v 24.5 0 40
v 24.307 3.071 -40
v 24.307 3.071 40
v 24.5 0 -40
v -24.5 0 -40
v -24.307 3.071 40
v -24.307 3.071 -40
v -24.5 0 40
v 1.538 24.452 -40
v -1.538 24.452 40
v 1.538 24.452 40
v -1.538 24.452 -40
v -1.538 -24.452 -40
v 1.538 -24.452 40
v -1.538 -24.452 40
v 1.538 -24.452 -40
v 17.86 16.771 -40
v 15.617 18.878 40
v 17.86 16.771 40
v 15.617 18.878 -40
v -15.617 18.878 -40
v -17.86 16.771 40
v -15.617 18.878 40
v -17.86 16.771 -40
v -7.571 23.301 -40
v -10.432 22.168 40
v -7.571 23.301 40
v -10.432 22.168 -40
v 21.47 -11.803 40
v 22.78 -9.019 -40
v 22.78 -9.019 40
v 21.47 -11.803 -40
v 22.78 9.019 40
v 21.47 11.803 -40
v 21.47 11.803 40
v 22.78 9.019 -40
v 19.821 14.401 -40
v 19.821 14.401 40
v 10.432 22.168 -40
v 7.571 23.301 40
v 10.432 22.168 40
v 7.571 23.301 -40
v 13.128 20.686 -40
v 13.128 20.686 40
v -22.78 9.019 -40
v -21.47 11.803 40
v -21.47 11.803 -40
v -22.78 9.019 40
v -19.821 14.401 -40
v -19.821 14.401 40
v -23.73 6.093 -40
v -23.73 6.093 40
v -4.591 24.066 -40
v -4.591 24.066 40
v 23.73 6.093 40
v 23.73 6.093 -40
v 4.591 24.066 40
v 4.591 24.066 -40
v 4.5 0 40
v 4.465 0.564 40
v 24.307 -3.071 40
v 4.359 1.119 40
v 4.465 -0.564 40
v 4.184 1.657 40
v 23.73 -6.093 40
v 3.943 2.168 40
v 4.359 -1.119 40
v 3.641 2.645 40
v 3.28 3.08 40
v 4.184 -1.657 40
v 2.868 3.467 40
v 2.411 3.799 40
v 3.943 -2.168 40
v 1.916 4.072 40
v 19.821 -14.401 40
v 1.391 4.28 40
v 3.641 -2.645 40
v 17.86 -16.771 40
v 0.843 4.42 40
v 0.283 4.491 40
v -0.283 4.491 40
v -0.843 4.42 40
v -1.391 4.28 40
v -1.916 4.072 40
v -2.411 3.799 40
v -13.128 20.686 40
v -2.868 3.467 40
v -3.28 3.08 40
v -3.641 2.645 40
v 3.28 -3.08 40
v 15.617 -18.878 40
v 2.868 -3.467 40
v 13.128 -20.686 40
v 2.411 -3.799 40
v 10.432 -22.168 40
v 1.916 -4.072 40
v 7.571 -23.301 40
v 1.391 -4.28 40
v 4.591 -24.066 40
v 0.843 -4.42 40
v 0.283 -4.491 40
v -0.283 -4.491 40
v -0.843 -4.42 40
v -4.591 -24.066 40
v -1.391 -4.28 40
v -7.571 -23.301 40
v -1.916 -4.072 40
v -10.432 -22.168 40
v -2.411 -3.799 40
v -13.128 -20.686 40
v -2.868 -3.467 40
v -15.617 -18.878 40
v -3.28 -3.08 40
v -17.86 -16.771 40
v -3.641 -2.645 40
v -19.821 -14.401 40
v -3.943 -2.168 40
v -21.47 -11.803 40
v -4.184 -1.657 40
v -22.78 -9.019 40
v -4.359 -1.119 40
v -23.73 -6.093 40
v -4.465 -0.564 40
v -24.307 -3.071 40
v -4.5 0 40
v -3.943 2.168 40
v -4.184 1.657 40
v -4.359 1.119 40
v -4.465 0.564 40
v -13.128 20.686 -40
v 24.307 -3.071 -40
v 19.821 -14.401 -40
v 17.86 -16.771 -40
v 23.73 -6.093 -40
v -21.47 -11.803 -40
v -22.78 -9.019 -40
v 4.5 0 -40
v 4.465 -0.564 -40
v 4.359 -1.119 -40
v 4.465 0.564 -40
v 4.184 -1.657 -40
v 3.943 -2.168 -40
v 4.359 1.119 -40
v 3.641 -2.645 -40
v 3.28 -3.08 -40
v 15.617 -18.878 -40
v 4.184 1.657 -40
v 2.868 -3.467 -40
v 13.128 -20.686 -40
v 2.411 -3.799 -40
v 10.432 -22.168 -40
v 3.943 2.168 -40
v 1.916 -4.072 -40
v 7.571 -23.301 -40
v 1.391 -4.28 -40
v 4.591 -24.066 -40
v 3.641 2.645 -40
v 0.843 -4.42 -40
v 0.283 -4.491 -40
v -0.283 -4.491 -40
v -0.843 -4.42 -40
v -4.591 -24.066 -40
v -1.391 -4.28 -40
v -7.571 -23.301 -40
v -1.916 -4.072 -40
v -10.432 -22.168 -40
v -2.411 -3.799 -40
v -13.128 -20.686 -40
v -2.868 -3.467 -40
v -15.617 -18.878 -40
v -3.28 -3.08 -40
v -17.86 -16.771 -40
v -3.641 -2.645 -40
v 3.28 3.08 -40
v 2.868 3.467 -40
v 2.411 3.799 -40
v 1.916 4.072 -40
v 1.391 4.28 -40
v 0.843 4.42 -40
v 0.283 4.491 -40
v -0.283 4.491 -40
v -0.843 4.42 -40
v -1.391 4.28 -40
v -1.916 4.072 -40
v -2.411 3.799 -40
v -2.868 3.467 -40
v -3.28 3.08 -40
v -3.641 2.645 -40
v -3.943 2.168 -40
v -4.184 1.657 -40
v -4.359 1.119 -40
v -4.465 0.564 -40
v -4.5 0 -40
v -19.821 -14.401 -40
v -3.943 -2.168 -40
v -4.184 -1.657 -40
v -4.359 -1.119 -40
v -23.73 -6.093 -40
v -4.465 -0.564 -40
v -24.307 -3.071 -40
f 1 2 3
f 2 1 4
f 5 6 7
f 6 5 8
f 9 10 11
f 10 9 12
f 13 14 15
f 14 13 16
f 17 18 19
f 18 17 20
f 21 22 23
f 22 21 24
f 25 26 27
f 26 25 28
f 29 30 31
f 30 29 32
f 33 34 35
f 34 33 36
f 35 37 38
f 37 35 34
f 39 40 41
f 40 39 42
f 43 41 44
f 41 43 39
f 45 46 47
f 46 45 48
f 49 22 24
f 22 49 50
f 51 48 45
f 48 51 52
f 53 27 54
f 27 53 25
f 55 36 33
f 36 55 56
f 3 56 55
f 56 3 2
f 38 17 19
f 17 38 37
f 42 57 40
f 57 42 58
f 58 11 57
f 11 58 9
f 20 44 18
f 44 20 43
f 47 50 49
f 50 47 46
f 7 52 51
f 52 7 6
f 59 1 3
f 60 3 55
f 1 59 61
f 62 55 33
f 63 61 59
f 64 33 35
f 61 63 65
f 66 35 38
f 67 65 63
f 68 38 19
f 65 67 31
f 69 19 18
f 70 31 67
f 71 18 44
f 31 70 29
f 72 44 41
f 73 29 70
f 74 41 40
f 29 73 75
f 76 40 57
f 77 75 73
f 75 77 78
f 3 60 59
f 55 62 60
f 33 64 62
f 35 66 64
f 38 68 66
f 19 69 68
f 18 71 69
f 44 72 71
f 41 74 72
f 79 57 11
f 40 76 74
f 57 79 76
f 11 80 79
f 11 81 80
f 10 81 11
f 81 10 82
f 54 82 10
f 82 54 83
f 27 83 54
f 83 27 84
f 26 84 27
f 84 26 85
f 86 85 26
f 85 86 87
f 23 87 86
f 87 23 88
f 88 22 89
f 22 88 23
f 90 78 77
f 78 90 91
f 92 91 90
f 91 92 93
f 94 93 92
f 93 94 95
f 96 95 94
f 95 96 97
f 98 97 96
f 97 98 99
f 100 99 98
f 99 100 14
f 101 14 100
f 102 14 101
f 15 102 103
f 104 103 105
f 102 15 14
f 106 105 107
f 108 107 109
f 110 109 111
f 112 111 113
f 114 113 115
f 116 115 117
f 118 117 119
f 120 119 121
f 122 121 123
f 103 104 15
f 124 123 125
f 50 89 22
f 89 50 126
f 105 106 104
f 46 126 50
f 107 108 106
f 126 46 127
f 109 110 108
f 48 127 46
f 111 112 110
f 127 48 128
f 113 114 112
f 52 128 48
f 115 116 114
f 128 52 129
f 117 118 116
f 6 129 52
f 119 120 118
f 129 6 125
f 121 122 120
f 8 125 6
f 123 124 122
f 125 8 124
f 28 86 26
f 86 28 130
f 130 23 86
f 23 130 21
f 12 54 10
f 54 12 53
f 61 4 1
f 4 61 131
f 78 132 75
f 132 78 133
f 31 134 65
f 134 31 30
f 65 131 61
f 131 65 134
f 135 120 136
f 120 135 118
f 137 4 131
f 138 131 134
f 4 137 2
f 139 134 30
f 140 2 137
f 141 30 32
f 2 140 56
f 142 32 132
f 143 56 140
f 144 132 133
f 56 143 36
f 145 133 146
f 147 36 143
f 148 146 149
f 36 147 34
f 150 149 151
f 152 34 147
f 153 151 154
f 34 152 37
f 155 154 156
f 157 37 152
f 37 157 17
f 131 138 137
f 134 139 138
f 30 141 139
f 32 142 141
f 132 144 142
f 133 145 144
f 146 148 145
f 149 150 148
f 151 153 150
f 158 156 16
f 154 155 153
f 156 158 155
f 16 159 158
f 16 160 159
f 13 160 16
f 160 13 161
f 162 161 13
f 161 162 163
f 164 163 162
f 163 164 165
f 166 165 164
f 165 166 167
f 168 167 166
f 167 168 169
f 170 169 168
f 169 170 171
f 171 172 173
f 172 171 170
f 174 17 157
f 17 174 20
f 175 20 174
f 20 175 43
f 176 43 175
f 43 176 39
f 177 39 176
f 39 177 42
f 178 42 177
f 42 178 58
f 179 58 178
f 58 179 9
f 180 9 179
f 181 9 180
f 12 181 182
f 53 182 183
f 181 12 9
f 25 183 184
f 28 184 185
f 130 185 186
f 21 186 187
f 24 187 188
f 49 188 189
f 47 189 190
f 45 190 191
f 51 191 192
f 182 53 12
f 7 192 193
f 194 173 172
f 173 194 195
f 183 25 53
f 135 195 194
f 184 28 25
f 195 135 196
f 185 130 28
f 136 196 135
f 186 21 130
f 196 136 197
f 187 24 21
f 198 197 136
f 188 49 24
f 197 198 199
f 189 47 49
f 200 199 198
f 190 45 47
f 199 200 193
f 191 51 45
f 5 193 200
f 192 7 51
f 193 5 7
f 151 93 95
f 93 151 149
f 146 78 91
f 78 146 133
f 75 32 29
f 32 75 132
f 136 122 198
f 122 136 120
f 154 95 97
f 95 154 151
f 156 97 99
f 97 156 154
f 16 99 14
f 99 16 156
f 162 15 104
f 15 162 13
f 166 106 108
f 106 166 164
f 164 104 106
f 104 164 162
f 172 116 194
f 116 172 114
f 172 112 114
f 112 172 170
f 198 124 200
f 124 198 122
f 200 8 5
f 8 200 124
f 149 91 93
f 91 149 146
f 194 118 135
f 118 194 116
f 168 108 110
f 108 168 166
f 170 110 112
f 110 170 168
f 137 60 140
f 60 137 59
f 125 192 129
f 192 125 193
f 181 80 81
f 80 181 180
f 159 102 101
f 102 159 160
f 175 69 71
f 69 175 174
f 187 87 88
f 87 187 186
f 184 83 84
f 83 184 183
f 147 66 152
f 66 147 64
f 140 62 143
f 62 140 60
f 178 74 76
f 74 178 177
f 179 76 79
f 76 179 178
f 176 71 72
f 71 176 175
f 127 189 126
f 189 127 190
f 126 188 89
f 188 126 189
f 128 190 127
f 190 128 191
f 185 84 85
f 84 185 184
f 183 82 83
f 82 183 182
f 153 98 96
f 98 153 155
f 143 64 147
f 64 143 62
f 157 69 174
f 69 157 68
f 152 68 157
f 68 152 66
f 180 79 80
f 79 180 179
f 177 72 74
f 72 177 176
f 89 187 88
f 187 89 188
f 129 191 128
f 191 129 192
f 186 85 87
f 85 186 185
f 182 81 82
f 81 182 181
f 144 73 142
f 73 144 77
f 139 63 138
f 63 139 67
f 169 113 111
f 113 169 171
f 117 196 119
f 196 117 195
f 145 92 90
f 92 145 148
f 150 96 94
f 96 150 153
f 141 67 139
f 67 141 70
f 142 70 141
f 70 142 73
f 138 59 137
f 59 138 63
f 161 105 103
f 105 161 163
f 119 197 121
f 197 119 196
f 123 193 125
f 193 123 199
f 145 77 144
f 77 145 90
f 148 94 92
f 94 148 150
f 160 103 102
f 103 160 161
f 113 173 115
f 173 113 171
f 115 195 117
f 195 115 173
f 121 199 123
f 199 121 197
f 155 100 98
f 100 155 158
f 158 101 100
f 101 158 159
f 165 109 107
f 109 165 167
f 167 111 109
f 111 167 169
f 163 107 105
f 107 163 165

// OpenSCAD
$fn = 50;


difference() {
	union() {
		translate(v = [0, 0, -40.0000000000]) {
			cylinder(h = 80, r = 24.5000000000);
		}
	}
	union() {
		translate(v = [0, 0, -100.0000000000]) {
			cylinder(h = 200, r = 4.5000000000);
		}
	}
}
